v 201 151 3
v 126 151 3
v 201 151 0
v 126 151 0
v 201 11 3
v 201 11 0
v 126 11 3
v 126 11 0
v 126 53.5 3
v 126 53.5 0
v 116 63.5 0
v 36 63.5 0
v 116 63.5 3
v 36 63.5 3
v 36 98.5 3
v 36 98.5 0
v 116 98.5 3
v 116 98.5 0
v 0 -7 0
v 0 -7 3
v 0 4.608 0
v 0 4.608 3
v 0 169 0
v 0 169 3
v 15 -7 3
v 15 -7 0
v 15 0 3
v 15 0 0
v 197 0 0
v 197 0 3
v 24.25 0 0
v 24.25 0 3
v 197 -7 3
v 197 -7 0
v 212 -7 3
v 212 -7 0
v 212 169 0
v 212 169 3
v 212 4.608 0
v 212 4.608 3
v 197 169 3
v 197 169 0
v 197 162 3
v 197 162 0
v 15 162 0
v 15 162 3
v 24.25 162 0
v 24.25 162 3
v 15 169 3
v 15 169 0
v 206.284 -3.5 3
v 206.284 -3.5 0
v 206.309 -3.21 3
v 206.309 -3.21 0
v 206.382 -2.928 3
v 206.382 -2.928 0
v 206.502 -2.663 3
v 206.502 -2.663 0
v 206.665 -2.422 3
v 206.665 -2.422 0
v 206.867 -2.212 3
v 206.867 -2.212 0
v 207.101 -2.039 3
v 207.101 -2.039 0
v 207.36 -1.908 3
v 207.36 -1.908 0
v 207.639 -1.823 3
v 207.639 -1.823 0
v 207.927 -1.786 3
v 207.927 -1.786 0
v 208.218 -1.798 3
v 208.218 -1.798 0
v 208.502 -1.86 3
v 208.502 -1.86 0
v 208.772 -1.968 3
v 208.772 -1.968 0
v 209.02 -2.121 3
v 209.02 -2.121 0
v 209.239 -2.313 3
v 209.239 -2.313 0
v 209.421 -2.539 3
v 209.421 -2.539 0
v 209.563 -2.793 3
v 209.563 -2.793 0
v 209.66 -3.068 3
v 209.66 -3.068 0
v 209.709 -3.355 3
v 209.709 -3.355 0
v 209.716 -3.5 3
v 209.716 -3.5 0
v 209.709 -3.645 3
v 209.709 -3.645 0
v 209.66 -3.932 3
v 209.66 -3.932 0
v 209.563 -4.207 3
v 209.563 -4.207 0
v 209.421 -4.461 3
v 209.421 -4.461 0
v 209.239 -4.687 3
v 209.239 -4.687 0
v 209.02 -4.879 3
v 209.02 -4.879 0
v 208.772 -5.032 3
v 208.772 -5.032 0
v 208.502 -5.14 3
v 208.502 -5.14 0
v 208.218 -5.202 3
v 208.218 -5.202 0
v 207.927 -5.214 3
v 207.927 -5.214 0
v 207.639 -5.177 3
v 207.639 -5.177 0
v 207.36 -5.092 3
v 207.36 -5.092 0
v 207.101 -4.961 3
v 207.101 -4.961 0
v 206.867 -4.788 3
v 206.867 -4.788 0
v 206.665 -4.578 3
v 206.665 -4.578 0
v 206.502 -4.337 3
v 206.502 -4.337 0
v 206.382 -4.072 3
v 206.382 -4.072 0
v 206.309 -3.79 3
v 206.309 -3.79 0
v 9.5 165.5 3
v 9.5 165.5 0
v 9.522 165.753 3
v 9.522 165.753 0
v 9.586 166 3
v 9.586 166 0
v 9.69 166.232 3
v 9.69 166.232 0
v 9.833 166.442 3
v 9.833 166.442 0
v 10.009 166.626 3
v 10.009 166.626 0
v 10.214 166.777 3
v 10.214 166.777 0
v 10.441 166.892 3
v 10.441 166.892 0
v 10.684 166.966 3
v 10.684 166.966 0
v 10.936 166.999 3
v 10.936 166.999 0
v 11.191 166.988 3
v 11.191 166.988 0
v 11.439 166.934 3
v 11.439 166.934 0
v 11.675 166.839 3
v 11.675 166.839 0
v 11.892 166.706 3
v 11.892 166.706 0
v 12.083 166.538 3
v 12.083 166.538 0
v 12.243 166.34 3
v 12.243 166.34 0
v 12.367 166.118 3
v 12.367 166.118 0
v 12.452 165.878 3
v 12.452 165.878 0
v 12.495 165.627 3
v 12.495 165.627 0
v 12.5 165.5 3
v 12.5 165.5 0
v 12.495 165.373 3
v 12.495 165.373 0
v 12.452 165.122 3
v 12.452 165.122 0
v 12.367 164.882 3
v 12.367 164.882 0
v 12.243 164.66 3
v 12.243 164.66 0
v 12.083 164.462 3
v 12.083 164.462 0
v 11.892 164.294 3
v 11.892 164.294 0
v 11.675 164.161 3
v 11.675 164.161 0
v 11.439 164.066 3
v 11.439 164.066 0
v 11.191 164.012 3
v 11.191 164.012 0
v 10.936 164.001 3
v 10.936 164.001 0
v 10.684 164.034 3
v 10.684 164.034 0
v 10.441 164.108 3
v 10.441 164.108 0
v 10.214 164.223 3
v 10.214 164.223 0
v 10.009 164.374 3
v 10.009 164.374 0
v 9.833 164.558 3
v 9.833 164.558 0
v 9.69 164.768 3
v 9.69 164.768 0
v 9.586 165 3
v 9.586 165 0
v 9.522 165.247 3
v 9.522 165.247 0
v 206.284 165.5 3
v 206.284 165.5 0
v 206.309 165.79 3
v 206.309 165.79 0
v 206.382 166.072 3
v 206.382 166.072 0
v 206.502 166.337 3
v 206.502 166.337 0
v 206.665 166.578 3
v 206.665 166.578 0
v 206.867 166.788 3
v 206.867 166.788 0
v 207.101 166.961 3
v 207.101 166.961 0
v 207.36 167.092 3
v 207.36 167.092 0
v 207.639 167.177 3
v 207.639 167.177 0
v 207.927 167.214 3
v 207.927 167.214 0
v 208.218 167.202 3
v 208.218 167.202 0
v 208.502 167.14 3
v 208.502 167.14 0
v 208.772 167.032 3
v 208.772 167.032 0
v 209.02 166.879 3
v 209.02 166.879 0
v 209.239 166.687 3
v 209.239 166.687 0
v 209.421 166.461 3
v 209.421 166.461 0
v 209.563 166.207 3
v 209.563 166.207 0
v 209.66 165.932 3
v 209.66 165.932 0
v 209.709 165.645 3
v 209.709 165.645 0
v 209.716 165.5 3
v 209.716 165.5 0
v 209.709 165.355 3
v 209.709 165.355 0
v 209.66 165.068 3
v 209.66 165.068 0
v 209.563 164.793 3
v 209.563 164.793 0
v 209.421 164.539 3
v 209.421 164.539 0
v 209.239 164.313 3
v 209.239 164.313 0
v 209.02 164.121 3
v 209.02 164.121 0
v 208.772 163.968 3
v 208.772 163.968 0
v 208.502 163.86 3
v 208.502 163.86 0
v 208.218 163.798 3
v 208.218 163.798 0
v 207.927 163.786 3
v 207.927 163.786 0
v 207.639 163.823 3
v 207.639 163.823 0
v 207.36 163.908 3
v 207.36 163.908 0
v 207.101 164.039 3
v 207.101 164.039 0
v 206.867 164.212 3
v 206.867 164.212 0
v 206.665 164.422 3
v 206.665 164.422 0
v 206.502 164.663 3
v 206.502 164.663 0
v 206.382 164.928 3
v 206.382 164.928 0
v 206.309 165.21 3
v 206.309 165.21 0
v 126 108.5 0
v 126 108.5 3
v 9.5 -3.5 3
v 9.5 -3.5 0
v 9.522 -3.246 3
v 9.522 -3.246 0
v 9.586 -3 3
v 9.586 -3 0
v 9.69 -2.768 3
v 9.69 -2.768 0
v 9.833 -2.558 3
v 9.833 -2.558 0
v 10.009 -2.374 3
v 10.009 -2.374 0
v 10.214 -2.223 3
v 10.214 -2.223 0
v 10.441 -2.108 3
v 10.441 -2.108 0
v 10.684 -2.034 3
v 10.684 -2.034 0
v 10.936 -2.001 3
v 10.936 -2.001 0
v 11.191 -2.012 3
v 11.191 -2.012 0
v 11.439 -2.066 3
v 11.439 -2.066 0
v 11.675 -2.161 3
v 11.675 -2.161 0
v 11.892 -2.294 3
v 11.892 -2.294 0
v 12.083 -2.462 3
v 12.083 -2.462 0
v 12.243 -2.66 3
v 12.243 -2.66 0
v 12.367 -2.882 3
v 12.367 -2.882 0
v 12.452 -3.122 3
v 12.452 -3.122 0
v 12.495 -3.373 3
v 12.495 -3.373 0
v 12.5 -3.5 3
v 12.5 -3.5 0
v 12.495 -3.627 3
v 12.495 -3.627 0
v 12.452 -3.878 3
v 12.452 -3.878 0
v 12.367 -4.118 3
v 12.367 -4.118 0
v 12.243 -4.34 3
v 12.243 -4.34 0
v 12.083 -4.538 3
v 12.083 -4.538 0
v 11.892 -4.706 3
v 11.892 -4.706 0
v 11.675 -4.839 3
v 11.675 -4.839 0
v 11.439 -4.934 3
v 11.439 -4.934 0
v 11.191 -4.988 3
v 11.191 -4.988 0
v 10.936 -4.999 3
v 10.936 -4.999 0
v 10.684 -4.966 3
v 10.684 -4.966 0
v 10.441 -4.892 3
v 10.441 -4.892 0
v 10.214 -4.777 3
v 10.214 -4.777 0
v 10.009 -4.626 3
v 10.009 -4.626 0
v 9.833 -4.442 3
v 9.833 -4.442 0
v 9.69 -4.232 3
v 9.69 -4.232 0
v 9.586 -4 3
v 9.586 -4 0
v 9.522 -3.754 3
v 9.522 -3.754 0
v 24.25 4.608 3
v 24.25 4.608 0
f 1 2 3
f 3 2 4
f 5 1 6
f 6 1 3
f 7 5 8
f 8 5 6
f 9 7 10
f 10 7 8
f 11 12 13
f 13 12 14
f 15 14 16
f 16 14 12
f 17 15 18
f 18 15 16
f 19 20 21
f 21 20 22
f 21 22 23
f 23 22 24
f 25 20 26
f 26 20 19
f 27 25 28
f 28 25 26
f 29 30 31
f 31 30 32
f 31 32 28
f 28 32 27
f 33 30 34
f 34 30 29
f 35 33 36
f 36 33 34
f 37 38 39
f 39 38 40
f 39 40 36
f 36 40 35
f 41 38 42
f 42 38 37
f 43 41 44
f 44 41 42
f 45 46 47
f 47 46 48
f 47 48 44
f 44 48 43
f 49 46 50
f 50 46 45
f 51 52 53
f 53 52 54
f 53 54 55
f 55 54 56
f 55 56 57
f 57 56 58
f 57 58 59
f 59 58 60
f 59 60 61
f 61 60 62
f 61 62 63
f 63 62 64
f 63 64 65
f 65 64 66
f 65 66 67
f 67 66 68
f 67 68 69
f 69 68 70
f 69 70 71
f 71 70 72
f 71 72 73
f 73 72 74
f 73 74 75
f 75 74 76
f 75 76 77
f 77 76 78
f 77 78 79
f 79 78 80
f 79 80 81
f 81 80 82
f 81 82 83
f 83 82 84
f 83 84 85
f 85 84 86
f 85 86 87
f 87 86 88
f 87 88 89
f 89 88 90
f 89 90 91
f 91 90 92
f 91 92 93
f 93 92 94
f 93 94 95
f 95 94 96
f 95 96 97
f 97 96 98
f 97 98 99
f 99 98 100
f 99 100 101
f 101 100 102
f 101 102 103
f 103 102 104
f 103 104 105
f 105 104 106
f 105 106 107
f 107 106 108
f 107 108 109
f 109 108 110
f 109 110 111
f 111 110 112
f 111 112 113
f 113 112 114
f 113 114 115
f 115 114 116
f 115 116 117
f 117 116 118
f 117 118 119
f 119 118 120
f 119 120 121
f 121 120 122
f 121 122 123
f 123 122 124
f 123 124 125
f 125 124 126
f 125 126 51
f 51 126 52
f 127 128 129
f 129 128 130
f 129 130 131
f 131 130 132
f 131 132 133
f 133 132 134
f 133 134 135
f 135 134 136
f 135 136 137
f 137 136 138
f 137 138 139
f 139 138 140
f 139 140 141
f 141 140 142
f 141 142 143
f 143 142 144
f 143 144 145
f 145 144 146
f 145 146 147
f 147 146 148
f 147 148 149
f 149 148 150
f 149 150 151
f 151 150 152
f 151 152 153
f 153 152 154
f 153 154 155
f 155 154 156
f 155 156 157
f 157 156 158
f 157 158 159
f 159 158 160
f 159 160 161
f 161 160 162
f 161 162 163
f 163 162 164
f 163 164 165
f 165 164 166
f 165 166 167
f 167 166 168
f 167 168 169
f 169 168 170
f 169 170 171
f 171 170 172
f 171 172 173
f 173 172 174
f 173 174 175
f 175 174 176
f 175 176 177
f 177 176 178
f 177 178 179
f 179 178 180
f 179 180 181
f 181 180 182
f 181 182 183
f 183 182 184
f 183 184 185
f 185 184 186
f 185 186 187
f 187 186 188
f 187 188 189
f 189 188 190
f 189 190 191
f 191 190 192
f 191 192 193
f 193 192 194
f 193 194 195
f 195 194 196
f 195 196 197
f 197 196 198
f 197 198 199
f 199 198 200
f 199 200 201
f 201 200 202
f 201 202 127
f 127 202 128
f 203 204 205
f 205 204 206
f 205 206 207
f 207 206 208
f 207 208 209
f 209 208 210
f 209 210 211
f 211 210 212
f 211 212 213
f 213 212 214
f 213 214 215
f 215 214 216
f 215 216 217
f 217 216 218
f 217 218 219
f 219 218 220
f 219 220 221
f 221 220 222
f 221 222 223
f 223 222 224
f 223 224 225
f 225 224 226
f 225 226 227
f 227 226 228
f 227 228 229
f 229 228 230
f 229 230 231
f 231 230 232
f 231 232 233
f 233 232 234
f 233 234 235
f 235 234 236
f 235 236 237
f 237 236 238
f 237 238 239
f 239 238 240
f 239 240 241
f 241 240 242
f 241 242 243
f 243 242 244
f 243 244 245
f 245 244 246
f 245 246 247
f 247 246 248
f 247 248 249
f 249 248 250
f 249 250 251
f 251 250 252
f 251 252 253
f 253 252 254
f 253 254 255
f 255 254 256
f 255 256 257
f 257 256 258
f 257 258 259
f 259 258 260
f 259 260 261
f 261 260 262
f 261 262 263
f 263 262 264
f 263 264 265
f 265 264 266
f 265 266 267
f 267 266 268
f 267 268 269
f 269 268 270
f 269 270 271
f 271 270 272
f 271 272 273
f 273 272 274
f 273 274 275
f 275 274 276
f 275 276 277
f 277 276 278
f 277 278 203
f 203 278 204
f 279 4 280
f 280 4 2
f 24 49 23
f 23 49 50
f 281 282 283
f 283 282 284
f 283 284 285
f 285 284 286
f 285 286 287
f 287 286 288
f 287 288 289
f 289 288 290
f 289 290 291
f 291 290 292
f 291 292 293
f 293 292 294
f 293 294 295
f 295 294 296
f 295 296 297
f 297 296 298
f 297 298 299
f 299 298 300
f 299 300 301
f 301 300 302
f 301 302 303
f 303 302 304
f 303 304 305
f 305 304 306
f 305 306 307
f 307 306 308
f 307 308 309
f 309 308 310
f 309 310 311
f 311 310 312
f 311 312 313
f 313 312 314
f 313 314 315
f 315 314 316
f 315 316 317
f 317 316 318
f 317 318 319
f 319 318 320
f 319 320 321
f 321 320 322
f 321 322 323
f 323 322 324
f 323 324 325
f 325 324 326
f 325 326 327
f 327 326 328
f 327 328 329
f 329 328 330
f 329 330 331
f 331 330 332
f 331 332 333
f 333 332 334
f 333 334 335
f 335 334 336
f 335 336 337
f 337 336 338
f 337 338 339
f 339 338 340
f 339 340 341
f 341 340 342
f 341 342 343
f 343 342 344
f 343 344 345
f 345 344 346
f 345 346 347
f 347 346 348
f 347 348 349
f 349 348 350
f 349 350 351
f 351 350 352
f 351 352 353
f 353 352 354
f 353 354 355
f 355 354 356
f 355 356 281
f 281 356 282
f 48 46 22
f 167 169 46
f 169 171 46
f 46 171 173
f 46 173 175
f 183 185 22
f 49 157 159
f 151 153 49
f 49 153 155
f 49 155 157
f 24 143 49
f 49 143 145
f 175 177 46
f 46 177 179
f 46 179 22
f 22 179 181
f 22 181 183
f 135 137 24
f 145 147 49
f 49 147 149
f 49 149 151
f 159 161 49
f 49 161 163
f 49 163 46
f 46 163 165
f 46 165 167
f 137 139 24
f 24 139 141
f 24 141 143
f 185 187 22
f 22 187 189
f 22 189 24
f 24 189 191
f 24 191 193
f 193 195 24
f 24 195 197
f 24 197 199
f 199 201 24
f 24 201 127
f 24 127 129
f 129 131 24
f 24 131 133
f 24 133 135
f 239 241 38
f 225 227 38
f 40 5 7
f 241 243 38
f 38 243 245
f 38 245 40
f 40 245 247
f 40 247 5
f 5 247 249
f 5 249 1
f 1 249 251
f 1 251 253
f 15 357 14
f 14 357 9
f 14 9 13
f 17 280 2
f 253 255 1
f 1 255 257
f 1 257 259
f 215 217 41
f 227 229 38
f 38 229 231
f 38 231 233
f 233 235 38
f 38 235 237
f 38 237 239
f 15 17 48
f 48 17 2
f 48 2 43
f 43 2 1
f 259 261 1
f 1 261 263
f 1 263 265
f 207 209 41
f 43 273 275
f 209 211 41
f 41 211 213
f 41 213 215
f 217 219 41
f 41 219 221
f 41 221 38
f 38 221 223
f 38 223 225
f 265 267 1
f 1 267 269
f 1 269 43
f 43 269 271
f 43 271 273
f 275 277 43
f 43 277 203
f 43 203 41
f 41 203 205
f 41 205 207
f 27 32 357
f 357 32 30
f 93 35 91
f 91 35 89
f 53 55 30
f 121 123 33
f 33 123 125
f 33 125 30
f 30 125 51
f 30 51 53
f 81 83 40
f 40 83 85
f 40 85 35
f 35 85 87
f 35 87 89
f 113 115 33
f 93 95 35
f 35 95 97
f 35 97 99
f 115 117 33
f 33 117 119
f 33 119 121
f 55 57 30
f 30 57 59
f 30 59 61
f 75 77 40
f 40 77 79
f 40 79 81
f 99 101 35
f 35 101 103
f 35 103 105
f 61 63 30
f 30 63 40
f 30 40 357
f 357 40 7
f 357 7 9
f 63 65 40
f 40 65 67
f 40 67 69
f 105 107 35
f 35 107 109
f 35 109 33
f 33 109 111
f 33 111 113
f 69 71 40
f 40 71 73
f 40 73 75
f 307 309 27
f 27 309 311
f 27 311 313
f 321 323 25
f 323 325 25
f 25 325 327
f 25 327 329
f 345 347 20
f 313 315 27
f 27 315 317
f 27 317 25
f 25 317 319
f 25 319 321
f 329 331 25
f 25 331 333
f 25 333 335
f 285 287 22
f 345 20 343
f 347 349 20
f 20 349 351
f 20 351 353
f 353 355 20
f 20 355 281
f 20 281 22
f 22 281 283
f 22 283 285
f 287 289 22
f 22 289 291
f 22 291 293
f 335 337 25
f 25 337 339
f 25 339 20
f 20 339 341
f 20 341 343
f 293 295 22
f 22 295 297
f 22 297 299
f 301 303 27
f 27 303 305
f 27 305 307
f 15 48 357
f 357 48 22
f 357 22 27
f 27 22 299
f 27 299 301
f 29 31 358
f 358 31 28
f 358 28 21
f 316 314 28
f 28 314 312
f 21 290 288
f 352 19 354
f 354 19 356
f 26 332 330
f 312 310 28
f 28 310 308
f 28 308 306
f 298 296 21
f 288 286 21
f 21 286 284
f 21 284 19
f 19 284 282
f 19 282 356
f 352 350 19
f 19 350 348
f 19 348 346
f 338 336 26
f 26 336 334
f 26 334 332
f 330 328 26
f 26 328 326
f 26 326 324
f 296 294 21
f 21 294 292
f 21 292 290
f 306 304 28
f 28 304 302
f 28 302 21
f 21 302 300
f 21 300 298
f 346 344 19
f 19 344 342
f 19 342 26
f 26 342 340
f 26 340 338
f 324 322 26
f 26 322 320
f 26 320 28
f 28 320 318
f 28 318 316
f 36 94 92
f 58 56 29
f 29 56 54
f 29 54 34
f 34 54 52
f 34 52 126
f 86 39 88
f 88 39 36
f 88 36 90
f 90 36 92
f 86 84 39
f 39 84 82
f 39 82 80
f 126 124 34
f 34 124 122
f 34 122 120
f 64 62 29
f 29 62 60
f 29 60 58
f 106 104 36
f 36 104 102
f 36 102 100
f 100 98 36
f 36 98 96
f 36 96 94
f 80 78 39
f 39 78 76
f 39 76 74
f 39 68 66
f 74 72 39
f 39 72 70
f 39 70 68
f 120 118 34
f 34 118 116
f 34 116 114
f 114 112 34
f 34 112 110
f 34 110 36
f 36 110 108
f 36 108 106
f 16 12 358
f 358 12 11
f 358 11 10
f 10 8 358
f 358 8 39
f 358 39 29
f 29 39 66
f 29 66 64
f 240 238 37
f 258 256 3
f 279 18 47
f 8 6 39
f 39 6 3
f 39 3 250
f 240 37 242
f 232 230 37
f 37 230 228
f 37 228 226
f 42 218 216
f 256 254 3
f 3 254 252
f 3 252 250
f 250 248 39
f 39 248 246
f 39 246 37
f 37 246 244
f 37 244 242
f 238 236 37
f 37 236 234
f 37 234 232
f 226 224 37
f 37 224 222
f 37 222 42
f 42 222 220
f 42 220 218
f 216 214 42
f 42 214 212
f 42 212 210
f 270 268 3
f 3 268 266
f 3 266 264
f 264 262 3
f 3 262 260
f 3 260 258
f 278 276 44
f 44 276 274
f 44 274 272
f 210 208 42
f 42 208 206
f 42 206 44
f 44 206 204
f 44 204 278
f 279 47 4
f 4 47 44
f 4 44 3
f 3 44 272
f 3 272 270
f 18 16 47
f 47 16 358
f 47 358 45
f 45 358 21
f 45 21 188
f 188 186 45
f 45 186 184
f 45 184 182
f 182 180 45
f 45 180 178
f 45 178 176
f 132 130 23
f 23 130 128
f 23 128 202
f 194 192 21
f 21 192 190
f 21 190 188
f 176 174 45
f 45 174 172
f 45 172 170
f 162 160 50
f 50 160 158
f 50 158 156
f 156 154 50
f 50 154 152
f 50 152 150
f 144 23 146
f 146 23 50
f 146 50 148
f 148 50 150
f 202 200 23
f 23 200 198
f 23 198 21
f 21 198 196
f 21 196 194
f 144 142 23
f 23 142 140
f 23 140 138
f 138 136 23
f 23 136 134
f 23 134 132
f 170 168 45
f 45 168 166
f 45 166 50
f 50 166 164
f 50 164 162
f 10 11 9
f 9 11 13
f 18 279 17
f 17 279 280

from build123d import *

# Parameters (mm, degrees)
SKETCH1_W           = 15
SKETCH1_H           = 7
SKETCH1_R           = 1.5
SKETCH1_R_2         = 1.715572335
BOSS_EXTRUDE1_DEPTH = 3
CHAMFER1_SIZE       = 10


with BuildPart() as part:
    # Sketch1 → Boss-Extrude1 (new body)
    # profile 1 of 5: a face of its own
    with BuildSketch(Plane.XY):
        Polygon((15, 162), (0, 162), (0, 0), (15, 0), (197, 0), (212, 0), (212, 162), (197, 162), align=None)
        Polygon((126, 151), (201, 151), (201, 11), (126, 11), (126, 63.5), (36, 63.5), (36, 98.5), (126, 98.5), align=None, mode=Mode.SUBTRACT)
    # profile 2 of 5: a face of its own
    with BuildSketch(Plane.XY):
        with Locations((7.5, 165.5)):
            Rectangle(SKETCH1_W, SKETCH1_H)
        with Locations((11, 165.5)):
            Circle(SKETCH1_R, mode=Mode.SUBTRACT)
    # profile 3 of 5: a face of its own
    with BuildSketch(Plane.XY):
        with Locations((7.5, -3.5)):
            Rectangle(SKETCH1_W, SKETCH1_H)
        with Locations((11, -3.5)):
            Circle(SKETCH1_R, mode=Mode.SUBTRACT)
    # profile 4 of 5: a face of its own
    with BuildSketch(Plane.XY):
        with Locations((204.5, -3.5)):
            Rectangle(SKETCH1_W, SKETCH1_H)
        with Locations((208, -3.5)):
            Circle(SKETCH1_R_2, mode=Mode.SUBTRACT)
    # profile 5 of 5: a face of its own
    with BuildSketch(Plane.XY):
        with Locations((204.5, 165.5)):
            Rectangle(SKETCH1_W, SKETCH1_H)
        with Locations((208, 165.5)):
            Circle(SKETCH1_R_2, mode=Mode.SUBTRACT)
    extrude(amount=BOSS_EXTRUDE1_DEPTH)

    # Chamfer1
    chamfer1_edges = [part.edges().sort_by_distance(p)[0] for p in [
        (126, 98.5, 1.5),
        (126, 63.5, 1.5),
    ]]
    chamfer(chamfer1_edges, length=CHAMFER1_SIZE)


solid = part.part
